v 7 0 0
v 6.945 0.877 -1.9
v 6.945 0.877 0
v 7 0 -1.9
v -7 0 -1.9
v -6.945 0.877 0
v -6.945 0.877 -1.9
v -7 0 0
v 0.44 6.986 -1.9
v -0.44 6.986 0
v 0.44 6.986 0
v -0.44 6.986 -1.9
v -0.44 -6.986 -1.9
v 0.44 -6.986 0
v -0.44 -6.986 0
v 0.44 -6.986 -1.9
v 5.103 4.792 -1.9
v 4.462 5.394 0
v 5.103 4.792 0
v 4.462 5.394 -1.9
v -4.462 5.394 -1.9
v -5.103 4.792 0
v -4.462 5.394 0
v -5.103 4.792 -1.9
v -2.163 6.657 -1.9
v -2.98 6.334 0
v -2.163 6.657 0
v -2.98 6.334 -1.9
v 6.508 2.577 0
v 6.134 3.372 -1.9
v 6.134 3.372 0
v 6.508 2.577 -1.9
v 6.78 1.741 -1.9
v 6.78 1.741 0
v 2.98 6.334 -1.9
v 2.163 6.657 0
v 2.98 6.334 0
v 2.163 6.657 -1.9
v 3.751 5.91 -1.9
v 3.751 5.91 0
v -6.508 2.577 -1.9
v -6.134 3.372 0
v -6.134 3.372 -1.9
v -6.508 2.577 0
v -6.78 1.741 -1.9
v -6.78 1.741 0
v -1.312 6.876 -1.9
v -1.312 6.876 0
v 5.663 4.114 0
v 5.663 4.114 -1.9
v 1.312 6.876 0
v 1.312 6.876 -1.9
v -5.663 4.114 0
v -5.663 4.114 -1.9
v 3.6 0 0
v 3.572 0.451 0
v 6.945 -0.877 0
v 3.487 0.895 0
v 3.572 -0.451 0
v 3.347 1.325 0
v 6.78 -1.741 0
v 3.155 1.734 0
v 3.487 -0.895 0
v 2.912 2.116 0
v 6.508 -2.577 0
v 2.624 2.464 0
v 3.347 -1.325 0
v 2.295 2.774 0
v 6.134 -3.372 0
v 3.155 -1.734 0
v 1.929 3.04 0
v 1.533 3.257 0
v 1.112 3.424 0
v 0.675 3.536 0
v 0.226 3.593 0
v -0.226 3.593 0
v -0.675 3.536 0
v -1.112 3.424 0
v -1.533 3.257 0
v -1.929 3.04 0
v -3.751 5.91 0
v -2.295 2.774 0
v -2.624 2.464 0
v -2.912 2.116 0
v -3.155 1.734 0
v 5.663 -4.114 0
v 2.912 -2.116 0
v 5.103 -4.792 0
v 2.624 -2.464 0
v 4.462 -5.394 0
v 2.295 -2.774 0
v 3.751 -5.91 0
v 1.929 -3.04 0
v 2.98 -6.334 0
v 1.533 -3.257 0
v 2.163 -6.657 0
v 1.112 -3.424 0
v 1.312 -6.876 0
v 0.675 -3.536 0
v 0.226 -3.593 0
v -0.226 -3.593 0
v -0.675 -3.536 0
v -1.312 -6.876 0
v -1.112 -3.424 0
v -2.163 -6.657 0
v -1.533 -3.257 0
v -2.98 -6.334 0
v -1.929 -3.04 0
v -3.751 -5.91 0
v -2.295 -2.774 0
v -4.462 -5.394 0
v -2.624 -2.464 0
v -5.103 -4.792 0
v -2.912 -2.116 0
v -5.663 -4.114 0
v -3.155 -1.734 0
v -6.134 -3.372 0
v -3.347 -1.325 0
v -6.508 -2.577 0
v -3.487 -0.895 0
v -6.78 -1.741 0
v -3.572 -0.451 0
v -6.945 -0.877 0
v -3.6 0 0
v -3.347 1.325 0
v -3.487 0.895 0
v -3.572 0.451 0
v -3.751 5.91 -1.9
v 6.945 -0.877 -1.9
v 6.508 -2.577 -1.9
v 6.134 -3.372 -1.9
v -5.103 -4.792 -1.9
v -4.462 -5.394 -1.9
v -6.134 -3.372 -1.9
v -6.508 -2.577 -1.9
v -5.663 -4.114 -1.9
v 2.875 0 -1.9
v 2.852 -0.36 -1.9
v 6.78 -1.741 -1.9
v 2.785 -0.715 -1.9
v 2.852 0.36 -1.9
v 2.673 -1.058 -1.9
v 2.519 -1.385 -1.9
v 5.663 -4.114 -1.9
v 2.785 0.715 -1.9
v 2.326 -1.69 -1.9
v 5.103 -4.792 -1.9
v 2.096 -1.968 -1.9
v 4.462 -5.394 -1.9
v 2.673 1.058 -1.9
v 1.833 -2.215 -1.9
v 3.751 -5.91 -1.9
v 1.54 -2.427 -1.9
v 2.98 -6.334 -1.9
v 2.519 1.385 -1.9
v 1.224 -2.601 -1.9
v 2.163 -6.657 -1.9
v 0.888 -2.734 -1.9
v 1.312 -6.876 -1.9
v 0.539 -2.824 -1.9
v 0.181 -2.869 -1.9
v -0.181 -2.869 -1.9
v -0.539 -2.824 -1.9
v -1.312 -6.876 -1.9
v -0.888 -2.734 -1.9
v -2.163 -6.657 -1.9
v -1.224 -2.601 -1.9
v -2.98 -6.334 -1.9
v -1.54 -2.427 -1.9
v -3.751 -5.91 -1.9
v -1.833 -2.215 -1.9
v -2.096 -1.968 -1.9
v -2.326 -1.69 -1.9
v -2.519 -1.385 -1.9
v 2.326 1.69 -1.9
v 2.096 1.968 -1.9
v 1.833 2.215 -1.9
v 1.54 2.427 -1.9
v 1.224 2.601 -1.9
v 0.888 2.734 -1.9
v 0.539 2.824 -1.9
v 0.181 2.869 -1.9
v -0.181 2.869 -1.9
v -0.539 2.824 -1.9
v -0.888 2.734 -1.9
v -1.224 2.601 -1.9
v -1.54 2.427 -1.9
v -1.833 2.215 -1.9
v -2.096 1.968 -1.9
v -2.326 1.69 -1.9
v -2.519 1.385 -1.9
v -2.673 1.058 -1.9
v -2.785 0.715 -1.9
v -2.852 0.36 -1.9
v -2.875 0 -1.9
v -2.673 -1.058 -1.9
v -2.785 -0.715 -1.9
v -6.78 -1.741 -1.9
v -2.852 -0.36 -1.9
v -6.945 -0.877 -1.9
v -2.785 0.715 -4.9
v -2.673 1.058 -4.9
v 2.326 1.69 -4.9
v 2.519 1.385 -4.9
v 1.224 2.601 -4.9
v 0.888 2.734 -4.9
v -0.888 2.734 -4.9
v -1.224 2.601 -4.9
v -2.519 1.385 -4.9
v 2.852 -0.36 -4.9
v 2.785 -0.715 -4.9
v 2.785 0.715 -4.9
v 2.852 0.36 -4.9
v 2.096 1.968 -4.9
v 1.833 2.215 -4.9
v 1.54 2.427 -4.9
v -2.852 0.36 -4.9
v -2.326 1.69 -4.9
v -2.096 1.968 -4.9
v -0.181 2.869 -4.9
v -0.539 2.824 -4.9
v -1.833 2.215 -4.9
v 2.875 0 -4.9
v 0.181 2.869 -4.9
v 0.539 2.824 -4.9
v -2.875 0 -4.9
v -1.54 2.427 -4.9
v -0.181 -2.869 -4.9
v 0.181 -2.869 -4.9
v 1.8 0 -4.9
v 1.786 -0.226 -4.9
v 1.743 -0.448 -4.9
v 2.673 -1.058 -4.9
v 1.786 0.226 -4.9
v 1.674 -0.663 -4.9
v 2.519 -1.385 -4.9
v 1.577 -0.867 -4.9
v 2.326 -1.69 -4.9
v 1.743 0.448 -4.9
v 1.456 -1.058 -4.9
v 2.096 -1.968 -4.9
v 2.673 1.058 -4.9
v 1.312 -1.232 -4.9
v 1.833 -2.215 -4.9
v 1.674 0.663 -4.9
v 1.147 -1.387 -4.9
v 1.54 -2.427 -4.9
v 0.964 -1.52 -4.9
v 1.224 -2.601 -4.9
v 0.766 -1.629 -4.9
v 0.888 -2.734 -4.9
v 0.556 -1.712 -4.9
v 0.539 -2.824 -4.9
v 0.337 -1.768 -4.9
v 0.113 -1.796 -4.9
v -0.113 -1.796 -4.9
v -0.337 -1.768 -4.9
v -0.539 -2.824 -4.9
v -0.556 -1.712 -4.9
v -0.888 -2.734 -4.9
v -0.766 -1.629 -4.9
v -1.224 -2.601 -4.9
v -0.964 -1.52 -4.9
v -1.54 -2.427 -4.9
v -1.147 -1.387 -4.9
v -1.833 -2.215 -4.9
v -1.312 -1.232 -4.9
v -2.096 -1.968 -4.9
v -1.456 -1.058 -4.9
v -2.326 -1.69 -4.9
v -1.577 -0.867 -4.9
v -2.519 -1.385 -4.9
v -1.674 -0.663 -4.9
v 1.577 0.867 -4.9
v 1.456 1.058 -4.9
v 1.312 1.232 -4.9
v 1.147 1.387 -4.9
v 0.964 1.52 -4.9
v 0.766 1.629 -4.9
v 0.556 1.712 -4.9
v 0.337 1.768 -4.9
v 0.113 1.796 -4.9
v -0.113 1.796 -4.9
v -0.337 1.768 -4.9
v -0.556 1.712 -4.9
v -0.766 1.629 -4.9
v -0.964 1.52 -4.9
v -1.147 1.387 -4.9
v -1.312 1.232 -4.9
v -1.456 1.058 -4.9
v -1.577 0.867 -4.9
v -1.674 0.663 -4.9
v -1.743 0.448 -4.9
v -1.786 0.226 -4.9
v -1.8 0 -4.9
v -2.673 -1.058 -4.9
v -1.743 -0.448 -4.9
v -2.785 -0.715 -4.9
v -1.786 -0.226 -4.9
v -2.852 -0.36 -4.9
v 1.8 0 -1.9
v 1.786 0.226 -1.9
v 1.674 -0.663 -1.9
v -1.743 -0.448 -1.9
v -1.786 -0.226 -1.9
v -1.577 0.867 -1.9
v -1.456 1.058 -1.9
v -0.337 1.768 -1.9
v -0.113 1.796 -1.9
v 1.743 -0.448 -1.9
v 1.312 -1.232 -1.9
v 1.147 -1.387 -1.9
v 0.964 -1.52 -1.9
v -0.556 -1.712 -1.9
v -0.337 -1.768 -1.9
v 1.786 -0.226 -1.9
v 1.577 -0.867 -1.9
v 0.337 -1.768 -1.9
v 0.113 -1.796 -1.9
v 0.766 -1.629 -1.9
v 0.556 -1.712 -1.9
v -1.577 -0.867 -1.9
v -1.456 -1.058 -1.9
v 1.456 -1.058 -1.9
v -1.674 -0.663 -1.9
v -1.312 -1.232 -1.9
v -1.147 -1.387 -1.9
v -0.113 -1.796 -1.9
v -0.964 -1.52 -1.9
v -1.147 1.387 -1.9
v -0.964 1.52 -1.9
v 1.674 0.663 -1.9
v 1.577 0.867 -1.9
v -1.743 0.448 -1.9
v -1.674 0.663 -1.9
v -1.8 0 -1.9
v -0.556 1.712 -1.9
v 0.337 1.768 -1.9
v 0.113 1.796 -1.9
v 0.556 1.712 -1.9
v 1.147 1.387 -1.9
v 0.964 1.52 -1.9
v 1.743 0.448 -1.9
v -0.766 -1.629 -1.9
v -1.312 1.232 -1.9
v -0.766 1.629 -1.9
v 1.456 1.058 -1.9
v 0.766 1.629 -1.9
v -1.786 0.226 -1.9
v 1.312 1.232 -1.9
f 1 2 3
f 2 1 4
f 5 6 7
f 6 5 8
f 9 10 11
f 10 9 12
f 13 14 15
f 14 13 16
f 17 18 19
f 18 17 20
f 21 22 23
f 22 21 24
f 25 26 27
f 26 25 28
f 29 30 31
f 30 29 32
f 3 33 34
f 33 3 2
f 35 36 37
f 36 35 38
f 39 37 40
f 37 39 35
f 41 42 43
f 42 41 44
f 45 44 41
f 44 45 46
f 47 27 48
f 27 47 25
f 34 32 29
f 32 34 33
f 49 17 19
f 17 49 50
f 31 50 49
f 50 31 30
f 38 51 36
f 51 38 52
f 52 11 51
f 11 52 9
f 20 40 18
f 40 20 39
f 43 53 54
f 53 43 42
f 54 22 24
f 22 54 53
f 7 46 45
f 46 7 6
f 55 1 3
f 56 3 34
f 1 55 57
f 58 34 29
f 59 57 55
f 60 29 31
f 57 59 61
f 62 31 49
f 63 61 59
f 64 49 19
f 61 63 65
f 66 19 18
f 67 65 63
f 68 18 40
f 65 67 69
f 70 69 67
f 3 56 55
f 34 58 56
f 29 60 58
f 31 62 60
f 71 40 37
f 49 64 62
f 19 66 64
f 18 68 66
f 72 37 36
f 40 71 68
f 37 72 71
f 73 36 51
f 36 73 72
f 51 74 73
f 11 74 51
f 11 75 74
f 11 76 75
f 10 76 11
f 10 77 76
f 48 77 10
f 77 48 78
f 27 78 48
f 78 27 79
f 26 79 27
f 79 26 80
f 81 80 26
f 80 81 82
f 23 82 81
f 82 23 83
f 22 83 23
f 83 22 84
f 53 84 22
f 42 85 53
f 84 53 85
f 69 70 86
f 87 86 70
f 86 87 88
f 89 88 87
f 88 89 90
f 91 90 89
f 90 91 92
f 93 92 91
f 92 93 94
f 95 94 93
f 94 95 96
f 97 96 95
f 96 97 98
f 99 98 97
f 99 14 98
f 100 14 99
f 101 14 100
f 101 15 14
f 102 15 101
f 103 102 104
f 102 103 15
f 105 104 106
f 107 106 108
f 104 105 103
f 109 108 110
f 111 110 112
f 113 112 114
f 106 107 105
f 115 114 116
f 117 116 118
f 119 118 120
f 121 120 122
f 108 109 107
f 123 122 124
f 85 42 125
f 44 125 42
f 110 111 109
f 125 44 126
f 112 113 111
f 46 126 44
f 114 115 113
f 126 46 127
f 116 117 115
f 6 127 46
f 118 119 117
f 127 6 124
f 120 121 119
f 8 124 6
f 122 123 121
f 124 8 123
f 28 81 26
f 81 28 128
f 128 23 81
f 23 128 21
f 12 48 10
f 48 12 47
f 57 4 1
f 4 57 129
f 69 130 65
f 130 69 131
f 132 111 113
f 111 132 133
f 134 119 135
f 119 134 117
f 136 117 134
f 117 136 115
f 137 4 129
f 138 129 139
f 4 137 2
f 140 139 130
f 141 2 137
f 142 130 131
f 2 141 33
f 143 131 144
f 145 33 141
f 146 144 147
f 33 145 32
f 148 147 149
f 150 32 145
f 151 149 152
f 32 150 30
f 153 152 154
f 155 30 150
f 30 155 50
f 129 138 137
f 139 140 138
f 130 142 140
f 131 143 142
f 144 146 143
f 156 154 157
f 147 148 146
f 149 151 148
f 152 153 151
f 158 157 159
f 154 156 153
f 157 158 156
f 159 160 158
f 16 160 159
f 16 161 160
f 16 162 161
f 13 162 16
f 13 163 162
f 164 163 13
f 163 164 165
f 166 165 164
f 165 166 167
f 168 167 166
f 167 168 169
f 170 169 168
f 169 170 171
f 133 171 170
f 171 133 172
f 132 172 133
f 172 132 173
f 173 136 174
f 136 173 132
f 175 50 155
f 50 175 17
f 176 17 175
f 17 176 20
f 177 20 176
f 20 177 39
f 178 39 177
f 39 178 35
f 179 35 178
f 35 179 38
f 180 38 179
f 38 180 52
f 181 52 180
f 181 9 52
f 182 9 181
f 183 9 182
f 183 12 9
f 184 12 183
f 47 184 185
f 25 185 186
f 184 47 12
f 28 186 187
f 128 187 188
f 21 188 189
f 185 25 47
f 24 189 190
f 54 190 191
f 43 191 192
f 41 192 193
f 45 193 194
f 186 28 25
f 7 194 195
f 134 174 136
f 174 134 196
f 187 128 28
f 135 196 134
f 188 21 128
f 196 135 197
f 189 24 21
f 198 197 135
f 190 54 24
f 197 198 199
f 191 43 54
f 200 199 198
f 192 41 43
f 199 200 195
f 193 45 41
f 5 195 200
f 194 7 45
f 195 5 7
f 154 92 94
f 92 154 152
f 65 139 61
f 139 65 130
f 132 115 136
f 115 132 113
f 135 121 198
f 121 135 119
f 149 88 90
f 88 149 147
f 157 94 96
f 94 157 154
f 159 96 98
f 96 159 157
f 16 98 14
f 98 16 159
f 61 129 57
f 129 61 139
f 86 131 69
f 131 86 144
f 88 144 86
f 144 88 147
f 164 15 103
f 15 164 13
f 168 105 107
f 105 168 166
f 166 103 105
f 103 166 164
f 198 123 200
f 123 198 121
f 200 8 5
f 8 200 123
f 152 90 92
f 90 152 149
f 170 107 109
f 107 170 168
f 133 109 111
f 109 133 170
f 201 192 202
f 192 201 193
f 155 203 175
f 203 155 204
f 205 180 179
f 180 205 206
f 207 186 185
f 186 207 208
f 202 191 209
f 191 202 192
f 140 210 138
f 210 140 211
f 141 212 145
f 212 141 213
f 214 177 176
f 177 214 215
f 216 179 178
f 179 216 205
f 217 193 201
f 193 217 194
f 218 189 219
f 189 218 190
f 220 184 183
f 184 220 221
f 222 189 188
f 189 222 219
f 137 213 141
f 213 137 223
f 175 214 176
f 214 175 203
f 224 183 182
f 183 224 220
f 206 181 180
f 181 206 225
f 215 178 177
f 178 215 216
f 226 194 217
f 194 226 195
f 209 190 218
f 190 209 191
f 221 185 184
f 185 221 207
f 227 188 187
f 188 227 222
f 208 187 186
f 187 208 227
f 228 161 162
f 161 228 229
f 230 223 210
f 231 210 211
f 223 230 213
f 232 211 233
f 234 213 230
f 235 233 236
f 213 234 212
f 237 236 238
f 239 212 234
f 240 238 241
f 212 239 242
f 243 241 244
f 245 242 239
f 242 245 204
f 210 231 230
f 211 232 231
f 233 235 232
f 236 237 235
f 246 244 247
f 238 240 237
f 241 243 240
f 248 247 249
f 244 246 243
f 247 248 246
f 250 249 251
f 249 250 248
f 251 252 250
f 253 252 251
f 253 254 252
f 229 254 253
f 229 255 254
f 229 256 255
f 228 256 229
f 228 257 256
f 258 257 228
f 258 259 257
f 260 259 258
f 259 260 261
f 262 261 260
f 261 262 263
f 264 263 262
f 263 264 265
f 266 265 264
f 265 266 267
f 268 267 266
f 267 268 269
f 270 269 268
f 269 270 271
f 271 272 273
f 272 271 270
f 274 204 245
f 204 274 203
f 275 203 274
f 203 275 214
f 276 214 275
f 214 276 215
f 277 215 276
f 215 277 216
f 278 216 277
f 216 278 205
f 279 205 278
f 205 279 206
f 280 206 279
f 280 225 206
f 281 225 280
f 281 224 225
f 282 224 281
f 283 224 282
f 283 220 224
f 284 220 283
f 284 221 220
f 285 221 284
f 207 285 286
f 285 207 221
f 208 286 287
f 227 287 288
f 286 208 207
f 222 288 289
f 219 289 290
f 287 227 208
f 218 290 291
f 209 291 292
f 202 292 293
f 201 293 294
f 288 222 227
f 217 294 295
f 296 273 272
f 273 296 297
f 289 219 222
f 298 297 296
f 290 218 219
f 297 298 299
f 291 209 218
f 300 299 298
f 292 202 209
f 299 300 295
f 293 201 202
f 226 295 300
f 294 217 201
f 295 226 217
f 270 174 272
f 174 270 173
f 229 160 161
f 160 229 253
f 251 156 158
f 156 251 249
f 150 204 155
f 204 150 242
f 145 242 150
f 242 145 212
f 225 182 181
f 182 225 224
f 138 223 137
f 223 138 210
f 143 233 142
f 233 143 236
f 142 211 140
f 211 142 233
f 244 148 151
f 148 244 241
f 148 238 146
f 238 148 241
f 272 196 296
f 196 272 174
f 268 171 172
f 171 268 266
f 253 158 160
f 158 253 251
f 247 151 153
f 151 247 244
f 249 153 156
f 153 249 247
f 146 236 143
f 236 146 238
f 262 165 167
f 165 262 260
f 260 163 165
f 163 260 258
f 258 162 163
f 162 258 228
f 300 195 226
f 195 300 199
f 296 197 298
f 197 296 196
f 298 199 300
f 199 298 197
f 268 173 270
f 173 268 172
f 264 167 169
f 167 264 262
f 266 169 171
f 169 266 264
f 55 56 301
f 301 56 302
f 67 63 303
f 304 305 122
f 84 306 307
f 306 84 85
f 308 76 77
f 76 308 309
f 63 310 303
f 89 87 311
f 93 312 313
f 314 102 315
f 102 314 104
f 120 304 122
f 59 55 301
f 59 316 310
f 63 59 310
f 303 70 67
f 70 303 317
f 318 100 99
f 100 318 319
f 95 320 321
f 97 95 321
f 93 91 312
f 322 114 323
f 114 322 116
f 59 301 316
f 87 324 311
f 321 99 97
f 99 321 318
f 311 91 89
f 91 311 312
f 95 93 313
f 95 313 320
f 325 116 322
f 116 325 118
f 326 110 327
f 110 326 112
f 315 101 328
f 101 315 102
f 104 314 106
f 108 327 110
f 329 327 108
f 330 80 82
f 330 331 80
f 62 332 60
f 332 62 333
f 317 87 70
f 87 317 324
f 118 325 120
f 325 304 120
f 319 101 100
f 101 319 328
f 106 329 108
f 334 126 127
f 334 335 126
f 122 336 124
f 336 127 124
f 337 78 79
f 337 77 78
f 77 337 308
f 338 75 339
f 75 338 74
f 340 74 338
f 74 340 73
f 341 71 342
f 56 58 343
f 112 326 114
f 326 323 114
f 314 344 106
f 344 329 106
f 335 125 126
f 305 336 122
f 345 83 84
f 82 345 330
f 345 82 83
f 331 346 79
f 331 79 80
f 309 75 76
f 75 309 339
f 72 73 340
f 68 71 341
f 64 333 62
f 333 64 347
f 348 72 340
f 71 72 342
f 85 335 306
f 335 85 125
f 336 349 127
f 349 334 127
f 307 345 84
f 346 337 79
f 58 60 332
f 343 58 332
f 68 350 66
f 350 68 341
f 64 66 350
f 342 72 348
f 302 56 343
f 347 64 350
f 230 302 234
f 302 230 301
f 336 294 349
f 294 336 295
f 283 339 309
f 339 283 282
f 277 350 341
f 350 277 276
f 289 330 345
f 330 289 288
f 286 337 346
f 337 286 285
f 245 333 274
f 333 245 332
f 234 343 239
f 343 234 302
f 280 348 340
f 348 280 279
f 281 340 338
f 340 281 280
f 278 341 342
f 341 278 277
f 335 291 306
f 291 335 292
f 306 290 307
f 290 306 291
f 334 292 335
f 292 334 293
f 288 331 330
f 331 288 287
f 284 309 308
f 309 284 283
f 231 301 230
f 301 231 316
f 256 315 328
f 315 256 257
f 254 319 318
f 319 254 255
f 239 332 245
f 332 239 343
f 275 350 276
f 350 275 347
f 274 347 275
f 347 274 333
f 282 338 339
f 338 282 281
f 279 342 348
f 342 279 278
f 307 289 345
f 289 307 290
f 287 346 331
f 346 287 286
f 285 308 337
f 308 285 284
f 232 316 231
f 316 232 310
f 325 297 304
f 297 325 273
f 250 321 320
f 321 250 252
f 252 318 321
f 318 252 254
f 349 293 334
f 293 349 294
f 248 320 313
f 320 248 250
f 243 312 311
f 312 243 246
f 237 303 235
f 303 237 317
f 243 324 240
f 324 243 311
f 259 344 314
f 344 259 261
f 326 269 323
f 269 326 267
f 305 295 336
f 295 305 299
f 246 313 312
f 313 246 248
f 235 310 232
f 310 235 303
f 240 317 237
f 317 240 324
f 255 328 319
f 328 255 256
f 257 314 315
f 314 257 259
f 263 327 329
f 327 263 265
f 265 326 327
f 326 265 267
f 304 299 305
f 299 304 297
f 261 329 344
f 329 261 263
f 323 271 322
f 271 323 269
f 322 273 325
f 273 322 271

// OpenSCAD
$fn = 50;


difference() {
	union() {
		translate(v = [0, 0, -1.9000000000]) {
			cylinder(h = 1.9000000000, r = 7.0000000000);
		}
		#translate(v = [0, 0, -4.9000000000]) {
			cylinder(h = 4.9000000000, r = 2.8750000000);
		}
	}
	union() {
		translate(v = [0, 0, 0]) {
			rotate(a = [0, 0, 0]) {
				difference() {
					union() {
						translate(v = [0, 0, -4.9000000000]) {
							cylinder(h = 4.9000000000, r = 1.5000000000);
						}
						translate(v = [0, 0, -1.9000000000]) {
							cylinder(h = 1.9000000000, r1 = 1.8000000000, r2 = 3.6000000000);
						}
						translate(v = [0, 0, -4.9000000000]) {
							cylinder(h = 4.9000000000, r = 1.8000000000);
						}
						translate(v = [0, 0, -4.9000000000]) {
							cylinder(h = 4.9000000000, r = 1.5000000000);
						}
					}
					union();
				}
			}
		}
	}
}
